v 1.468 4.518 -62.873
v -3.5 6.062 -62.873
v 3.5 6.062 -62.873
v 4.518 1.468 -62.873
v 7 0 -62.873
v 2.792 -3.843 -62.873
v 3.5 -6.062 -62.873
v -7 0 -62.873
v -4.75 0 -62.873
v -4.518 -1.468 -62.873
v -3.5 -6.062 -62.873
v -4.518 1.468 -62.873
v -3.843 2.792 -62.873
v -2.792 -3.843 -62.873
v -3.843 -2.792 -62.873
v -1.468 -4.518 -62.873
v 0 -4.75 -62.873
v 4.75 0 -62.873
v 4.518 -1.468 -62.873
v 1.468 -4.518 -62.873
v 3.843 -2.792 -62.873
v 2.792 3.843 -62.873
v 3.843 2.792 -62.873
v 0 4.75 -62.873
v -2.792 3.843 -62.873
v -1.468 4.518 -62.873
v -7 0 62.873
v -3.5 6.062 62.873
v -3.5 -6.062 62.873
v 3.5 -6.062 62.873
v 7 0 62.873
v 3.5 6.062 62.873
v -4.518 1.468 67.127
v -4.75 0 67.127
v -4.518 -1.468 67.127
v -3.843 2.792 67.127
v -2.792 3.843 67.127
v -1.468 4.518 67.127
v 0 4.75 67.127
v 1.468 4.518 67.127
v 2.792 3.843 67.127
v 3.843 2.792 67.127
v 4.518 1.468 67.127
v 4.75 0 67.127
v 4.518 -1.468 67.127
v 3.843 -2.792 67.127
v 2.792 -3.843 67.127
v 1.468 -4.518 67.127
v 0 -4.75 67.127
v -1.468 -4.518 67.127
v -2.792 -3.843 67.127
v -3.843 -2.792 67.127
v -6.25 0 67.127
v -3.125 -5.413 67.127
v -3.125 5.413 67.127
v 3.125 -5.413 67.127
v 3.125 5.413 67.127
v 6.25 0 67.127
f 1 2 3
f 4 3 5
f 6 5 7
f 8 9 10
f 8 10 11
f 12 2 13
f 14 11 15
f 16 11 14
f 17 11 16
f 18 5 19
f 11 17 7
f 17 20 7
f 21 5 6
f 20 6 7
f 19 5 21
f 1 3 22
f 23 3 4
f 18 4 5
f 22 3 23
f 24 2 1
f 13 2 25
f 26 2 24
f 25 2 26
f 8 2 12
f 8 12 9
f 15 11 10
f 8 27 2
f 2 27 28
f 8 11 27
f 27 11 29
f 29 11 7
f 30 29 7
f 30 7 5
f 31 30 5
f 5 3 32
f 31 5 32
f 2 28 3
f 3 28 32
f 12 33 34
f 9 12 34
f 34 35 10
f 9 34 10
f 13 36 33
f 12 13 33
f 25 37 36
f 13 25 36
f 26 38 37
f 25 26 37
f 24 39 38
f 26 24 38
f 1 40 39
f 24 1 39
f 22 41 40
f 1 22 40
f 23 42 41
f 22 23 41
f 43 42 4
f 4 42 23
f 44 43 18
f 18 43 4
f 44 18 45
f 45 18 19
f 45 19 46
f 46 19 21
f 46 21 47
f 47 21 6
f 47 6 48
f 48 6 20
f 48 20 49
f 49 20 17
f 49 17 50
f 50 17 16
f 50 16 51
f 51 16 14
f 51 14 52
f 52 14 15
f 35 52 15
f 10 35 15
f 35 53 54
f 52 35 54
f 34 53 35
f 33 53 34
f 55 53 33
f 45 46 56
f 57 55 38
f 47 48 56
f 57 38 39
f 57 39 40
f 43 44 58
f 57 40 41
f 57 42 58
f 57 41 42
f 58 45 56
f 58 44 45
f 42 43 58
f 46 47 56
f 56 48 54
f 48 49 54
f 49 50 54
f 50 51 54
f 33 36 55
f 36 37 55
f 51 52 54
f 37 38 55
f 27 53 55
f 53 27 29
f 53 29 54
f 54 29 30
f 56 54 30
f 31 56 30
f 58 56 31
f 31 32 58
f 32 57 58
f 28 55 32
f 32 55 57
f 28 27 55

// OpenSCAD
pen_len = 130;
pen_diam = 14;
pen_idiam = 9.5;
pen_sides = 6;
pen_tip_angle = 10;
pen_tip_wall_th = 1.5;

//-- Calculations
pen_tip_h = (pen_diam/2 - (pen_idiam/2 + pen_tip_wall_th)) / tan(pen_tip_angle);

extra = 10;

difference() {

 //-- Pen with tip
  union() {
    //-- Tip
    color("red")
    translate([0,0,pen_len/2])
    cylinder(r1 = pen_diam/2, r2 = pen_idiam/2 + pen_tip_wall_th, h = pen_tip_h, center = true, $fn = pen_sides);

    //-- Body
    cylinder(r = pen_diam/2, h = pen_len - pen_tip_h, center = true, $fn = pen_sides);
  }  

  //-- Inner part
  cylinder(r = pen_idiam/2, h = pen_len + pen_tip_h + extra, center = true, $fn = 20);

}
